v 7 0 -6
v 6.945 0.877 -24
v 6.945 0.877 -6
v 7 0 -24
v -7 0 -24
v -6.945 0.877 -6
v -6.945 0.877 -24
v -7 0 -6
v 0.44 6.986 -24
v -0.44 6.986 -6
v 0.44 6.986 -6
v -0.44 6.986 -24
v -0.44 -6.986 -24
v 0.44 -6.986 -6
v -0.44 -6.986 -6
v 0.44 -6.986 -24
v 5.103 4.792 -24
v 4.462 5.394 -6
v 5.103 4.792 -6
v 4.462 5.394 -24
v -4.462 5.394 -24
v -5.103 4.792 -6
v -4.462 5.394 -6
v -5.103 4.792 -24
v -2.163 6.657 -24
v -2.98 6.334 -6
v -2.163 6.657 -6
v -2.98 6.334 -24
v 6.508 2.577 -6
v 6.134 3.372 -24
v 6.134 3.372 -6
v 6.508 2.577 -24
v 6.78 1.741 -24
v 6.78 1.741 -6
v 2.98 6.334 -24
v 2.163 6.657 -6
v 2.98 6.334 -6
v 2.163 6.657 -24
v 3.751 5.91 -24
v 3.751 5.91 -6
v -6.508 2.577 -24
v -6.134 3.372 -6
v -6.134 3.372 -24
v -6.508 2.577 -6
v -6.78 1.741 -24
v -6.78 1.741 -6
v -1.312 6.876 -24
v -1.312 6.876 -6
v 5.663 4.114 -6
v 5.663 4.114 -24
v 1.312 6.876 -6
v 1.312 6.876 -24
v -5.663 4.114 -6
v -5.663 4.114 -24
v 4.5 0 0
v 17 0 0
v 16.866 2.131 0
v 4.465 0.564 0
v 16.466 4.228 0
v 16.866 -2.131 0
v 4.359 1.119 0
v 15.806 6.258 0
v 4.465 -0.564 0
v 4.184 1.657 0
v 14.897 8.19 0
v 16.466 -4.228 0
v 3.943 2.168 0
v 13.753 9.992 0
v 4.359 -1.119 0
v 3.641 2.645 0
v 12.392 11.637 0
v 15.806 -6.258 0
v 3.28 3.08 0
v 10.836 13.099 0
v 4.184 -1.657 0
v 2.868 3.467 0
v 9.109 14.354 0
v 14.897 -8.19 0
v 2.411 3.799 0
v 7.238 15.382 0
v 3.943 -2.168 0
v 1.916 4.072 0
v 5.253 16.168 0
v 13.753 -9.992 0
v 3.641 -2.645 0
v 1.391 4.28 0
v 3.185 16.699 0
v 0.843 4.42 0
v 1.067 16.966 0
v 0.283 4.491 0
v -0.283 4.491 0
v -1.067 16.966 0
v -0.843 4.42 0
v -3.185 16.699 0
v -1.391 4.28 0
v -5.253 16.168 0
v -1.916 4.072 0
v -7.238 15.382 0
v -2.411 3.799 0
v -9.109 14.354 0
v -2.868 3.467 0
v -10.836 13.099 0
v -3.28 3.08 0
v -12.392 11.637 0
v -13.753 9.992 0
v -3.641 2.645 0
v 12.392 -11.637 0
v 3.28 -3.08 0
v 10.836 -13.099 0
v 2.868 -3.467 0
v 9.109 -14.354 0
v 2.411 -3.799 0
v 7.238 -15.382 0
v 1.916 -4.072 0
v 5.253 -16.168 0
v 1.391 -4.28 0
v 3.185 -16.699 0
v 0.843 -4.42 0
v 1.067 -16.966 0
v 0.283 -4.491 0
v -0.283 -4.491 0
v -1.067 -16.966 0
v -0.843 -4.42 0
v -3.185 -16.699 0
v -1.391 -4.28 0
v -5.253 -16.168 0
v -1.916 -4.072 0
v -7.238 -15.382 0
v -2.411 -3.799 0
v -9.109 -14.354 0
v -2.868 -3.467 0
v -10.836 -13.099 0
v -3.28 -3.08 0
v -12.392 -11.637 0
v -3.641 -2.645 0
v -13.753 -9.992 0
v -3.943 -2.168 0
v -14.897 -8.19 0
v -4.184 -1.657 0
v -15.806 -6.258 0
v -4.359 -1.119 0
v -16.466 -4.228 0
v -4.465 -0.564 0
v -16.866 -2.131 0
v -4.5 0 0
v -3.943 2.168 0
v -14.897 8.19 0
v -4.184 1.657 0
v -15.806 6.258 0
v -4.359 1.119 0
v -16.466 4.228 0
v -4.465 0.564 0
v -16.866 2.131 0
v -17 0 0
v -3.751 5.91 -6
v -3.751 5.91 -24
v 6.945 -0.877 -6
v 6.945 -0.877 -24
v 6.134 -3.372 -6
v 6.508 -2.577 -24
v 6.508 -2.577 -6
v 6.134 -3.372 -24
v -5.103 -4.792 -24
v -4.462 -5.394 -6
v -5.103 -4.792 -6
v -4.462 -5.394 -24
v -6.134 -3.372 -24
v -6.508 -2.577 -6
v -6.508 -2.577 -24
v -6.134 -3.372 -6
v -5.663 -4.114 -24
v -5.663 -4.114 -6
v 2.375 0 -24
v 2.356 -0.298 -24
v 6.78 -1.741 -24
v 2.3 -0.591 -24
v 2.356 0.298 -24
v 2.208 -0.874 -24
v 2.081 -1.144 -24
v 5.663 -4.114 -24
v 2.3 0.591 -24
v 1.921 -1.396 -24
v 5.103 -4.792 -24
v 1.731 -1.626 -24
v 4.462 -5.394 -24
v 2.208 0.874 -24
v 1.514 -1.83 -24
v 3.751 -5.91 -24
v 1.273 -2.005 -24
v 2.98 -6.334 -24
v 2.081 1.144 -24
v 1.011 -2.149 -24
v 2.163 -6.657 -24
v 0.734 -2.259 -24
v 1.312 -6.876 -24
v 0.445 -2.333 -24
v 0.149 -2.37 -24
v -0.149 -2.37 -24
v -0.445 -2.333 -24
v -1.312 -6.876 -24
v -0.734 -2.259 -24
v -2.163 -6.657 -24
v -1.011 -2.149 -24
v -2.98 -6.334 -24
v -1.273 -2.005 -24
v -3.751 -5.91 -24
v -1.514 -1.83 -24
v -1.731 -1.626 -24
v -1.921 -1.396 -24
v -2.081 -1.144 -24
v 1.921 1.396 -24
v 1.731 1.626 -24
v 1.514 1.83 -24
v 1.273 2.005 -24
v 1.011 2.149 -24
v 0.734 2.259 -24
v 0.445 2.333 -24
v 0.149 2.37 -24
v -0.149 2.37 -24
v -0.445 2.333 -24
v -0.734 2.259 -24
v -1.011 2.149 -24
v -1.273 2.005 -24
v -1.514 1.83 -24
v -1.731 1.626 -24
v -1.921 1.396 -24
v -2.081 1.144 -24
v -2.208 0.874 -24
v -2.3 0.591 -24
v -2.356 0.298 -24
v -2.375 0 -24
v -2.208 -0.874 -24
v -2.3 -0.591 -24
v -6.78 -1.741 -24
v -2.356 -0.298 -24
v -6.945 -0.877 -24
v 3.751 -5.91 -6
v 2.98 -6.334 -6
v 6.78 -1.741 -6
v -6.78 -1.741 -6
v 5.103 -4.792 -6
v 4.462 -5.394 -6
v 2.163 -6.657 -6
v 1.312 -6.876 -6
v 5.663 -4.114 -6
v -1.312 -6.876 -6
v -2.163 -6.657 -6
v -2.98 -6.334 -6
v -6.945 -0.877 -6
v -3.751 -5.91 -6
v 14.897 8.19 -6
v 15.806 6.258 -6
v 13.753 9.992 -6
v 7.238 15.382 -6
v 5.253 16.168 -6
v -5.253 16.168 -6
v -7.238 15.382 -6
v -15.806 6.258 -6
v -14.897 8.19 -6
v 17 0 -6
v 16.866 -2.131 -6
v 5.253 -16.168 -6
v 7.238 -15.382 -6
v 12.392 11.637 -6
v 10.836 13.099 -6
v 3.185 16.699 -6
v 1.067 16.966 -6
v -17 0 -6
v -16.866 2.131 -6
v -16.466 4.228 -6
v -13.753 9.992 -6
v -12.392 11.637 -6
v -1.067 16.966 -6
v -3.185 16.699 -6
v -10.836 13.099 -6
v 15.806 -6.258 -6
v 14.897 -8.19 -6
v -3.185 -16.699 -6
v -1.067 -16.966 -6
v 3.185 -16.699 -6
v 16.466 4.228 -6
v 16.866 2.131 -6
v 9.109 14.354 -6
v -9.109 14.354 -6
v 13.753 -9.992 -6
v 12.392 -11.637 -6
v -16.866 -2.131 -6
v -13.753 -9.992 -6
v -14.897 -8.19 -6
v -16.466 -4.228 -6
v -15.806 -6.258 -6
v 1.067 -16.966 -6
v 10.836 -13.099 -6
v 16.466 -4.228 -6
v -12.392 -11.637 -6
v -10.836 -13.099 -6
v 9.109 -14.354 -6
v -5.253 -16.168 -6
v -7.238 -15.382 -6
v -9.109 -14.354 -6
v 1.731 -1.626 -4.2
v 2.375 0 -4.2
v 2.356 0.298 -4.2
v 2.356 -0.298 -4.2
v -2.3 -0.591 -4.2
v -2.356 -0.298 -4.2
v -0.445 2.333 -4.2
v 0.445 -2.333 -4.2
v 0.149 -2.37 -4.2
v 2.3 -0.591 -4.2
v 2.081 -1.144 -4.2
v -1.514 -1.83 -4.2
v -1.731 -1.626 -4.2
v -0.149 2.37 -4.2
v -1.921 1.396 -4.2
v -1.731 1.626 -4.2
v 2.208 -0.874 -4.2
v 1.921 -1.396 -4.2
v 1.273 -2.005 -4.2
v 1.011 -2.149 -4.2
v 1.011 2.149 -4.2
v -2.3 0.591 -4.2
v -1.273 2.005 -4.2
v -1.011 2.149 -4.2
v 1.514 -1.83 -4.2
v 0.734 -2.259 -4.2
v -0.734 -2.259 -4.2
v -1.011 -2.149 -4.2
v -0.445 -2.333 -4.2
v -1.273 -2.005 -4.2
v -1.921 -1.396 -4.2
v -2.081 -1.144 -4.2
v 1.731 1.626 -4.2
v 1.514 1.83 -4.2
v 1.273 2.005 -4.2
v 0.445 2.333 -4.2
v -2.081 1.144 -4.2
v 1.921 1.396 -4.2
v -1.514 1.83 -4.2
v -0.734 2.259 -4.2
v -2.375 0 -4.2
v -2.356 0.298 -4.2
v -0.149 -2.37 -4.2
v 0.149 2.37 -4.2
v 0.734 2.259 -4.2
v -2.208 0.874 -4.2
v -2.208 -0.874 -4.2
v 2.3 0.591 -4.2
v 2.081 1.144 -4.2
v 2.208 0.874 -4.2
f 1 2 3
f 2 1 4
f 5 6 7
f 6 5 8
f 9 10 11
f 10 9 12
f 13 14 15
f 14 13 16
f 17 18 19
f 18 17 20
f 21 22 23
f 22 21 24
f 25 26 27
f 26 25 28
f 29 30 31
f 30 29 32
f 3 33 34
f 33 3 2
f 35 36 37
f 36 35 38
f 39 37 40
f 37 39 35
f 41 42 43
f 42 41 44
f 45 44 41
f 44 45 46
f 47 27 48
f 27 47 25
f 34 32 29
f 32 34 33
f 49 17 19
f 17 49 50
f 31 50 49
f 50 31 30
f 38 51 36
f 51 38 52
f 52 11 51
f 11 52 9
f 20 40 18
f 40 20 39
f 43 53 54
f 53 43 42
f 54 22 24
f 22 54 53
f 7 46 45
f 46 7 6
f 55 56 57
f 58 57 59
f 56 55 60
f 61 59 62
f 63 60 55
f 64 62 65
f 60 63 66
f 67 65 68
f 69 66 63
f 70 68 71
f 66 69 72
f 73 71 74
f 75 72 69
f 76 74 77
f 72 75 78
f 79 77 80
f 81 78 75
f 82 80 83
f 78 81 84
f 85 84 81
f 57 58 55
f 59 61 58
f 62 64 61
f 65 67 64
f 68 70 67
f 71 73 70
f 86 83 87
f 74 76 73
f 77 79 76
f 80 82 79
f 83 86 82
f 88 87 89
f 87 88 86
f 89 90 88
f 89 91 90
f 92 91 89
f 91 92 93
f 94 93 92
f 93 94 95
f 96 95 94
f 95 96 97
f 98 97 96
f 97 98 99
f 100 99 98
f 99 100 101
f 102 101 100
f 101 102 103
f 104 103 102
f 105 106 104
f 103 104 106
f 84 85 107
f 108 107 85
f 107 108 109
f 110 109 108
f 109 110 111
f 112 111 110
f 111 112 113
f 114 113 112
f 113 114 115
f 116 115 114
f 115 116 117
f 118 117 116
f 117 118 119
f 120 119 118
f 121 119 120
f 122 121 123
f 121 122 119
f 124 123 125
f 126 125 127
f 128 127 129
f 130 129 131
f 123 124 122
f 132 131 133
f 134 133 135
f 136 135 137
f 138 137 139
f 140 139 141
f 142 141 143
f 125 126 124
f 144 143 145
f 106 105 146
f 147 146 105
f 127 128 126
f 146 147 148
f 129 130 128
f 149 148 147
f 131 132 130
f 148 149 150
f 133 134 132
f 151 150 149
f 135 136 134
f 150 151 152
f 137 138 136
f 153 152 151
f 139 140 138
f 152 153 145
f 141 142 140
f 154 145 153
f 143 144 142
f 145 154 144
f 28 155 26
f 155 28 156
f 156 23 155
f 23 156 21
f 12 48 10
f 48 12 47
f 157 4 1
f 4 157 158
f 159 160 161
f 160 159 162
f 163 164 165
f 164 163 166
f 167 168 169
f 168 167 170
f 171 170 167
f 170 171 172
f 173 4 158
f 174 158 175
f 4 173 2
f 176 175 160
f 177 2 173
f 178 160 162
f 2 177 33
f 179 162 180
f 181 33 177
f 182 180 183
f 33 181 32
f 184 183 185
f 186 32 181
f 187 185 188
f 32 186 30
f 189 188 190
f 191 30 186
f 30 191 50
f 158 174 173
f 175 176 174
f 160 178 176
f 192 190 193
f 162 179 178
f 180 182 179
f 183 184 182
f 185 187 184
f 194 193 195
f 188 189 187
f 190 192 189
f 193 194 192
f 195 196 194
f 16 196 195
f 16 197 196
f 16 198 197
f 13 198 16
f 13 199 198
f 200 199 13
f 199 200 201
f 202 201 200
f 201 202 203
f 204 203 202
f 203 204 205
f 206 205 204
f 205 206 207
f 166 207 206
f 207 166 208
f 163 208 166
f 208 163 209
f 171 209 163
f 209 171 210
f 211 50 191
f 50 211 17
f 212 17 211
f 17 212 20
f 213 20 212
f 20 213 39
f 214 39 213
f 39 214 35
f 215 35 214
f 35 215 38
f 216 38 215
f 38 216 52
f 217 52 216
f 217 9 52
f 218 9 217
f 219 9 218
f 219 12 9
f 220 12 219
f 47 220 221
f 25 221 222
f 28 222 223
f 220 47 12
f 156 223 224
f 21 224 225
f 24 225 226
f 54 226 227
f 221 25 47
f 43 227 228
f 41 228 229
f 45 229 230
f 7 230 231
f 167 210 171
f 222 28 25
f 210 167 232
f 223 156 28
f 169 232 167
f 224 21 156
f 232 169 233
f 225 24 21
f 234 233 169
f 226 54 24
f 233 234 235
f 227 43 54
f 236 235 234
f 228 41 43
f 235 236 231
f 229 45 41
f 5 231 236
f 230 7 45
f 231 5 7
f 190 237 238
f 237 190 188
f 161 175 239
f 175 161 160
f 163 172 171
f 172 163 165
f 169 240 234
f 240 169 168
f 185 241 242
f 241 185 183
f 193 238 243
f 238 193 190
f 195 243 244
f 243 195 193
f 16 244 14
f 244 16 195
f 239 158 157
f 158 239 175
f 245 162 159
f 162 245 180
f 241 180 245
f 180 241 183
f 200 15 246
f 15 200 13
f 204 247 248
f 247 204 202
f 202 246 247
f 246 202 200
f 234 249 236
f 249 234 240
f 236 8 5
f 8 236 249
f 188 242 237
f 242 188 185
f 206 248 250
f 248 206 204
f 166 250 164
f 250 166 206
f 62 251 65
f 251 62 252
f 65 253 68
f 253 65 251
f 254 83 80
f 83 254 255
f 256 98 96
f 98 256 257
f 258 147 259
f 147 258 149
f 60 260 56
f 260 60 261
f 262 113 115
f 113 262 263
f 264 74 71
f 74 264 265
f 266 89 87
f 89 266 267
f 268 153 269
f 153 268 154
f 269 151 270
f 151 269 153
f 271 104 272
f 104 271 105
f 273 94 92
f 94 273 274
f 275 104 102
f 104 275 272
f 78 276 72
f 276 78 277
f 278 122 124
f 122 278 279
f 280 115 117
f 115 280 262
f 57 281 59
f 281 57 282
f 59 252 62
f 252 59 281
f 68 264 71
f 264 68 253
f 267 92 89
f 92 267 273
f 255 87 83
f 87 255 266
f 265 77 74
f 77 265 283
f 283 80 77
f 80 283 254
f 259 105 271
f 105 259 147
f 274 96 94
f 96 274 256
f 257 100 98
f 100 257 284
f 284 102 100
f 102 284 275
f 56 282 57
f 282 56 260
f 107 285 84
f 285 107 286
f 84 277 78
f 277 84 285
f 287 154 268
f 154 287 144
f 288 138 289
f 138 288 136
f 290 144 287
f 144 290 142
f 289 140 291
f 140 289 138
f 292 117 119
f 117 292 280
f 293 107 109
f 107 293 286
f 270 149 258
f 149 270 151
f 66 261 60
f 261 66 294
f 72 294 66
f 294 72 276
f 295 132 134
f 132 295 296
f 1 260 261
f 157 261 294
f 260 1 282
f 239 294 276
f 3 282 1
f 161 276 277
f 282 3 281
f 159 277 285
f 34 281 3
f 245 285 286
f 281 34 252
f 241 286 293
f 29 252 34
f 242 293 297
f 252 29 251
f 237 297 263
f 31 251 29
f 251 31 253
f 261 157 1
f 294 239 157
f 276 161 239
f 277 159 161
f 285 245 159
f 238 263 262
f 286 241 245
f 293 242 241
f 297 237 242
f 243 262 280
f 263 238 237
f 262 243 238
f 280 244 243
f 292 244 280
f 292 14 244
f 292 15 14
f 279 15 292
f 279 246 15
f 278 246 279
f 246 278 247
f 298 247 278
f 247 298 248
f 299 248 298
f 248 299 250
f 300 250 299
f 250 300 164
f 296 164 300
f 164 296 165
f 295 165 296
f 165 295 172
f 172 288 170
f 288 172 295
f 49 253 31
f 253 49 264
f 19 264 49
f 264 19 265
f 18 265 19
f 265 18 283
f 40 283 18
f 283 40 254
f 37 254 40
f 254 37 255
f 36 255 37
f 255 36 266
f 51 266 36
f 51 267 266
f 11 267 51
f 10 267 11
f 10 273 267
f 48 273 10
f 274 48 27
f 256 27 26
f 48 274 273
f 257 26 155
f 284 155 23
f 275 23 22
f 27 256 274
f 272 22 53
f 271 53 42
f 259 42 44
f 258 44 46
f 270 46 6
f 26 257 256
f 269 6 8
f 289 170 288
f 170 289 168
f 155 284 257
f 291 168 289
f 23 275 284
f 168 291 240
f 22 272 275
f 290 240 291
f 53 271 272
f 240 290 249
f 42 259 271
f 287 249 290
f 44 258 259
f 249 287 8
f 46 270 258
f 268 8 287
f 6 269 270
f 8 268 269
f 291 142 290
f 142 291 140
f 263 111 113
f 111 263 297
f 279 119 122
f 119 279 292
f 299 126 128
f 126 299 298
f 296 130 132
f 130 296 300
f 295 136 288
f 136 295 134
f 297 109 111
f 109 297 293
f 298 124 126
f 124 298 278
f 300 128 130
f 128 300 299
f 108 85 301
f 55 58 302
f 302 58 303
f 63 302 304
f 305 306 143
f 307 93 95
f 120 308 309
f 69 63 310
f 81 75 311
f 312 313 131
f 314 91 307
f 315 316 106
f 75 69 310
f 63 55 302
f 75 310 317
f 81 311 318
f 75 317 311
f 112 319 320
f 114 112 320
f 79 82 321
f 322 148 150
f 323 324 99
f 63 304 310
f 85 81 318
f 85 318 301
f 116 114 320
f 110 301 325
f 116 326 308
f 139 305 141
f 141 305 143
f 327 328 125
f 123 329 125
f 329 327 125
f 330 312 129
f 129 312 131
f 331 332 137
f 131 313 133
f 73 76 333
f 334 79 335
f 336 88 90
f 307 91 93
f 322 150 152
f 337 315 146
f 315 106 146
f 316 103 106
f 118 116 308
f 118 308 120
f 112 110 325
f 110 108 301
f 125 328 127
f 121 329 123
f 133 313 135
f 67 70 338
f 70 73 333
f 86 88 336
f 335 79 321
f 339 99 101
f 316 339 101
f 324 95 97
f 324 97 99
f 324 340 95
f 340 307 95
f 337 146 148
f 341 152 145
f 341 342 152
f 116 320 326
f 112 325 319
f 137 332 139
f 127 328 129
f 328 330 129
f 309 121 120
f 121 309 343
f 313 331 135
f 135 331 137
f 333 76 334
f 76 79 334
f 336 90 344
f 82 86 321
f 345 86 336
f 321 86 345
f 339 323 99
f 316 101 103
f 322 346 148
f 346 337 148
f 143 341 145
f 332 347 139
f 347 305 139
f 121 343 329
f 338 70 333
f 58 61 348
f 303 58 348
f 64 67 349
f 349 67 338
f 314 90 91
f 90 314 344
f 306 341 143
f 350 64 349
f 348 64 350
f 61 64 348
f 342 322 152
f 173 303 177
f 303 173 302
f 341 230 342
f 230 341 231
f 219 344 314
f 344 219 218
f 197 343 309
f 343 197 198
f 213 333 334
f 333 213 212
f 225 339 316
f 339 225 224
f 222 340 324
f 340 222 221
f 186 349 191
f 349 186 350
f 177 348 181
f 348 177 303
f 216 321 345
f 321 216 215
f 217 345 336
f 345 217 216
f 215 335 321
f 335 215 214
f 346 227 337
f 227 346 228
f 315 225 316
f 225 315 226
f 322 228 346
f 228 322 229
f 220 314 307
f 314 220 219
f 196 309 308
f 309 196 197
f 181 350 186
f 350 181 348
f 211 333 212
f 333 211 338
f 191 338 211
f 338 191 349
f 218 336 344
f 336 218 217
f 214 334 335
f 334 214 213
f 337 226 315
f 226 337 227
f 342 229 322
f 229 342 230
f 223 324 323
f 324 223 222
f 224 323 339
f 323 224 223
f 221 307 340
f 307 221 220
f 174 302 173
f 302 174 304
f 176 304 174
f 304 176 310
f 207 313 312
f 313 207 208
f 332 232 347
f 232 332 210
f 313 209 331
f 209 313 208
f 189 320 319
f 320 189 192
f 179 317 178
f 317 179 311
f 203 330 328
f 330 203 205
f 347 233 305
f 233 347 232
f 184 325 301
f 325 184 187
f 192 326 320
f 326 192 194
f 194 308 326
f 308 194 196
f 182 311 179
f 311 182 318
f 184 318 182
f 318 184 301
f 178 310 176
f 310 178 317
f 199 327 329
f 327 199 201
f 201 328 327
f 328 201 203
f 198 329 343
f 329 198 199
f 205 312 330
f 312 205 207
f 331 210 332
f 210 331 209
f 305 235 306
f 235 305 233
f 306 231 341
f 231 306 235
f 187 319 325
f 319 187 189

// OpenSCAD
$fn = 50;


difference() {
	union() {
		translate(v = [0, 0, -24.0000000000]) {
			cylinder(h = 24, r = 7.0000000000);
		}
		translate(v = [0, 0, -6.0000000000]) {
			cylinder(h = 6, r = 17.0000000000);
		}
	}
	union() {
		translate(v = [0, 0, 0]) {
			rotate(a = [0, 0, 0]) {
				difference() {
					union() {
						#translate(v = [0, 0, -24.0000000000]) {
							cylinder(h = 24, r = 2.2500000000);
						}
						#translate(v = [0, 0, -4.2000000000]) {
							cylinder(h = 4.2000000000, r1 = 2.3750000000, r2 = 4.5000000000);
						}
						#translate(v = [0, 0, -24.0000000000]) {
							cylinder(h = 24, r = 2.3750000000);
						}
						#translate(v = [0, 0, -24.0000000000]) {
							cylinder(h = 24, r = 2.2500000000);
						}
					}
					union();
				}
			}
		}
	}
}
